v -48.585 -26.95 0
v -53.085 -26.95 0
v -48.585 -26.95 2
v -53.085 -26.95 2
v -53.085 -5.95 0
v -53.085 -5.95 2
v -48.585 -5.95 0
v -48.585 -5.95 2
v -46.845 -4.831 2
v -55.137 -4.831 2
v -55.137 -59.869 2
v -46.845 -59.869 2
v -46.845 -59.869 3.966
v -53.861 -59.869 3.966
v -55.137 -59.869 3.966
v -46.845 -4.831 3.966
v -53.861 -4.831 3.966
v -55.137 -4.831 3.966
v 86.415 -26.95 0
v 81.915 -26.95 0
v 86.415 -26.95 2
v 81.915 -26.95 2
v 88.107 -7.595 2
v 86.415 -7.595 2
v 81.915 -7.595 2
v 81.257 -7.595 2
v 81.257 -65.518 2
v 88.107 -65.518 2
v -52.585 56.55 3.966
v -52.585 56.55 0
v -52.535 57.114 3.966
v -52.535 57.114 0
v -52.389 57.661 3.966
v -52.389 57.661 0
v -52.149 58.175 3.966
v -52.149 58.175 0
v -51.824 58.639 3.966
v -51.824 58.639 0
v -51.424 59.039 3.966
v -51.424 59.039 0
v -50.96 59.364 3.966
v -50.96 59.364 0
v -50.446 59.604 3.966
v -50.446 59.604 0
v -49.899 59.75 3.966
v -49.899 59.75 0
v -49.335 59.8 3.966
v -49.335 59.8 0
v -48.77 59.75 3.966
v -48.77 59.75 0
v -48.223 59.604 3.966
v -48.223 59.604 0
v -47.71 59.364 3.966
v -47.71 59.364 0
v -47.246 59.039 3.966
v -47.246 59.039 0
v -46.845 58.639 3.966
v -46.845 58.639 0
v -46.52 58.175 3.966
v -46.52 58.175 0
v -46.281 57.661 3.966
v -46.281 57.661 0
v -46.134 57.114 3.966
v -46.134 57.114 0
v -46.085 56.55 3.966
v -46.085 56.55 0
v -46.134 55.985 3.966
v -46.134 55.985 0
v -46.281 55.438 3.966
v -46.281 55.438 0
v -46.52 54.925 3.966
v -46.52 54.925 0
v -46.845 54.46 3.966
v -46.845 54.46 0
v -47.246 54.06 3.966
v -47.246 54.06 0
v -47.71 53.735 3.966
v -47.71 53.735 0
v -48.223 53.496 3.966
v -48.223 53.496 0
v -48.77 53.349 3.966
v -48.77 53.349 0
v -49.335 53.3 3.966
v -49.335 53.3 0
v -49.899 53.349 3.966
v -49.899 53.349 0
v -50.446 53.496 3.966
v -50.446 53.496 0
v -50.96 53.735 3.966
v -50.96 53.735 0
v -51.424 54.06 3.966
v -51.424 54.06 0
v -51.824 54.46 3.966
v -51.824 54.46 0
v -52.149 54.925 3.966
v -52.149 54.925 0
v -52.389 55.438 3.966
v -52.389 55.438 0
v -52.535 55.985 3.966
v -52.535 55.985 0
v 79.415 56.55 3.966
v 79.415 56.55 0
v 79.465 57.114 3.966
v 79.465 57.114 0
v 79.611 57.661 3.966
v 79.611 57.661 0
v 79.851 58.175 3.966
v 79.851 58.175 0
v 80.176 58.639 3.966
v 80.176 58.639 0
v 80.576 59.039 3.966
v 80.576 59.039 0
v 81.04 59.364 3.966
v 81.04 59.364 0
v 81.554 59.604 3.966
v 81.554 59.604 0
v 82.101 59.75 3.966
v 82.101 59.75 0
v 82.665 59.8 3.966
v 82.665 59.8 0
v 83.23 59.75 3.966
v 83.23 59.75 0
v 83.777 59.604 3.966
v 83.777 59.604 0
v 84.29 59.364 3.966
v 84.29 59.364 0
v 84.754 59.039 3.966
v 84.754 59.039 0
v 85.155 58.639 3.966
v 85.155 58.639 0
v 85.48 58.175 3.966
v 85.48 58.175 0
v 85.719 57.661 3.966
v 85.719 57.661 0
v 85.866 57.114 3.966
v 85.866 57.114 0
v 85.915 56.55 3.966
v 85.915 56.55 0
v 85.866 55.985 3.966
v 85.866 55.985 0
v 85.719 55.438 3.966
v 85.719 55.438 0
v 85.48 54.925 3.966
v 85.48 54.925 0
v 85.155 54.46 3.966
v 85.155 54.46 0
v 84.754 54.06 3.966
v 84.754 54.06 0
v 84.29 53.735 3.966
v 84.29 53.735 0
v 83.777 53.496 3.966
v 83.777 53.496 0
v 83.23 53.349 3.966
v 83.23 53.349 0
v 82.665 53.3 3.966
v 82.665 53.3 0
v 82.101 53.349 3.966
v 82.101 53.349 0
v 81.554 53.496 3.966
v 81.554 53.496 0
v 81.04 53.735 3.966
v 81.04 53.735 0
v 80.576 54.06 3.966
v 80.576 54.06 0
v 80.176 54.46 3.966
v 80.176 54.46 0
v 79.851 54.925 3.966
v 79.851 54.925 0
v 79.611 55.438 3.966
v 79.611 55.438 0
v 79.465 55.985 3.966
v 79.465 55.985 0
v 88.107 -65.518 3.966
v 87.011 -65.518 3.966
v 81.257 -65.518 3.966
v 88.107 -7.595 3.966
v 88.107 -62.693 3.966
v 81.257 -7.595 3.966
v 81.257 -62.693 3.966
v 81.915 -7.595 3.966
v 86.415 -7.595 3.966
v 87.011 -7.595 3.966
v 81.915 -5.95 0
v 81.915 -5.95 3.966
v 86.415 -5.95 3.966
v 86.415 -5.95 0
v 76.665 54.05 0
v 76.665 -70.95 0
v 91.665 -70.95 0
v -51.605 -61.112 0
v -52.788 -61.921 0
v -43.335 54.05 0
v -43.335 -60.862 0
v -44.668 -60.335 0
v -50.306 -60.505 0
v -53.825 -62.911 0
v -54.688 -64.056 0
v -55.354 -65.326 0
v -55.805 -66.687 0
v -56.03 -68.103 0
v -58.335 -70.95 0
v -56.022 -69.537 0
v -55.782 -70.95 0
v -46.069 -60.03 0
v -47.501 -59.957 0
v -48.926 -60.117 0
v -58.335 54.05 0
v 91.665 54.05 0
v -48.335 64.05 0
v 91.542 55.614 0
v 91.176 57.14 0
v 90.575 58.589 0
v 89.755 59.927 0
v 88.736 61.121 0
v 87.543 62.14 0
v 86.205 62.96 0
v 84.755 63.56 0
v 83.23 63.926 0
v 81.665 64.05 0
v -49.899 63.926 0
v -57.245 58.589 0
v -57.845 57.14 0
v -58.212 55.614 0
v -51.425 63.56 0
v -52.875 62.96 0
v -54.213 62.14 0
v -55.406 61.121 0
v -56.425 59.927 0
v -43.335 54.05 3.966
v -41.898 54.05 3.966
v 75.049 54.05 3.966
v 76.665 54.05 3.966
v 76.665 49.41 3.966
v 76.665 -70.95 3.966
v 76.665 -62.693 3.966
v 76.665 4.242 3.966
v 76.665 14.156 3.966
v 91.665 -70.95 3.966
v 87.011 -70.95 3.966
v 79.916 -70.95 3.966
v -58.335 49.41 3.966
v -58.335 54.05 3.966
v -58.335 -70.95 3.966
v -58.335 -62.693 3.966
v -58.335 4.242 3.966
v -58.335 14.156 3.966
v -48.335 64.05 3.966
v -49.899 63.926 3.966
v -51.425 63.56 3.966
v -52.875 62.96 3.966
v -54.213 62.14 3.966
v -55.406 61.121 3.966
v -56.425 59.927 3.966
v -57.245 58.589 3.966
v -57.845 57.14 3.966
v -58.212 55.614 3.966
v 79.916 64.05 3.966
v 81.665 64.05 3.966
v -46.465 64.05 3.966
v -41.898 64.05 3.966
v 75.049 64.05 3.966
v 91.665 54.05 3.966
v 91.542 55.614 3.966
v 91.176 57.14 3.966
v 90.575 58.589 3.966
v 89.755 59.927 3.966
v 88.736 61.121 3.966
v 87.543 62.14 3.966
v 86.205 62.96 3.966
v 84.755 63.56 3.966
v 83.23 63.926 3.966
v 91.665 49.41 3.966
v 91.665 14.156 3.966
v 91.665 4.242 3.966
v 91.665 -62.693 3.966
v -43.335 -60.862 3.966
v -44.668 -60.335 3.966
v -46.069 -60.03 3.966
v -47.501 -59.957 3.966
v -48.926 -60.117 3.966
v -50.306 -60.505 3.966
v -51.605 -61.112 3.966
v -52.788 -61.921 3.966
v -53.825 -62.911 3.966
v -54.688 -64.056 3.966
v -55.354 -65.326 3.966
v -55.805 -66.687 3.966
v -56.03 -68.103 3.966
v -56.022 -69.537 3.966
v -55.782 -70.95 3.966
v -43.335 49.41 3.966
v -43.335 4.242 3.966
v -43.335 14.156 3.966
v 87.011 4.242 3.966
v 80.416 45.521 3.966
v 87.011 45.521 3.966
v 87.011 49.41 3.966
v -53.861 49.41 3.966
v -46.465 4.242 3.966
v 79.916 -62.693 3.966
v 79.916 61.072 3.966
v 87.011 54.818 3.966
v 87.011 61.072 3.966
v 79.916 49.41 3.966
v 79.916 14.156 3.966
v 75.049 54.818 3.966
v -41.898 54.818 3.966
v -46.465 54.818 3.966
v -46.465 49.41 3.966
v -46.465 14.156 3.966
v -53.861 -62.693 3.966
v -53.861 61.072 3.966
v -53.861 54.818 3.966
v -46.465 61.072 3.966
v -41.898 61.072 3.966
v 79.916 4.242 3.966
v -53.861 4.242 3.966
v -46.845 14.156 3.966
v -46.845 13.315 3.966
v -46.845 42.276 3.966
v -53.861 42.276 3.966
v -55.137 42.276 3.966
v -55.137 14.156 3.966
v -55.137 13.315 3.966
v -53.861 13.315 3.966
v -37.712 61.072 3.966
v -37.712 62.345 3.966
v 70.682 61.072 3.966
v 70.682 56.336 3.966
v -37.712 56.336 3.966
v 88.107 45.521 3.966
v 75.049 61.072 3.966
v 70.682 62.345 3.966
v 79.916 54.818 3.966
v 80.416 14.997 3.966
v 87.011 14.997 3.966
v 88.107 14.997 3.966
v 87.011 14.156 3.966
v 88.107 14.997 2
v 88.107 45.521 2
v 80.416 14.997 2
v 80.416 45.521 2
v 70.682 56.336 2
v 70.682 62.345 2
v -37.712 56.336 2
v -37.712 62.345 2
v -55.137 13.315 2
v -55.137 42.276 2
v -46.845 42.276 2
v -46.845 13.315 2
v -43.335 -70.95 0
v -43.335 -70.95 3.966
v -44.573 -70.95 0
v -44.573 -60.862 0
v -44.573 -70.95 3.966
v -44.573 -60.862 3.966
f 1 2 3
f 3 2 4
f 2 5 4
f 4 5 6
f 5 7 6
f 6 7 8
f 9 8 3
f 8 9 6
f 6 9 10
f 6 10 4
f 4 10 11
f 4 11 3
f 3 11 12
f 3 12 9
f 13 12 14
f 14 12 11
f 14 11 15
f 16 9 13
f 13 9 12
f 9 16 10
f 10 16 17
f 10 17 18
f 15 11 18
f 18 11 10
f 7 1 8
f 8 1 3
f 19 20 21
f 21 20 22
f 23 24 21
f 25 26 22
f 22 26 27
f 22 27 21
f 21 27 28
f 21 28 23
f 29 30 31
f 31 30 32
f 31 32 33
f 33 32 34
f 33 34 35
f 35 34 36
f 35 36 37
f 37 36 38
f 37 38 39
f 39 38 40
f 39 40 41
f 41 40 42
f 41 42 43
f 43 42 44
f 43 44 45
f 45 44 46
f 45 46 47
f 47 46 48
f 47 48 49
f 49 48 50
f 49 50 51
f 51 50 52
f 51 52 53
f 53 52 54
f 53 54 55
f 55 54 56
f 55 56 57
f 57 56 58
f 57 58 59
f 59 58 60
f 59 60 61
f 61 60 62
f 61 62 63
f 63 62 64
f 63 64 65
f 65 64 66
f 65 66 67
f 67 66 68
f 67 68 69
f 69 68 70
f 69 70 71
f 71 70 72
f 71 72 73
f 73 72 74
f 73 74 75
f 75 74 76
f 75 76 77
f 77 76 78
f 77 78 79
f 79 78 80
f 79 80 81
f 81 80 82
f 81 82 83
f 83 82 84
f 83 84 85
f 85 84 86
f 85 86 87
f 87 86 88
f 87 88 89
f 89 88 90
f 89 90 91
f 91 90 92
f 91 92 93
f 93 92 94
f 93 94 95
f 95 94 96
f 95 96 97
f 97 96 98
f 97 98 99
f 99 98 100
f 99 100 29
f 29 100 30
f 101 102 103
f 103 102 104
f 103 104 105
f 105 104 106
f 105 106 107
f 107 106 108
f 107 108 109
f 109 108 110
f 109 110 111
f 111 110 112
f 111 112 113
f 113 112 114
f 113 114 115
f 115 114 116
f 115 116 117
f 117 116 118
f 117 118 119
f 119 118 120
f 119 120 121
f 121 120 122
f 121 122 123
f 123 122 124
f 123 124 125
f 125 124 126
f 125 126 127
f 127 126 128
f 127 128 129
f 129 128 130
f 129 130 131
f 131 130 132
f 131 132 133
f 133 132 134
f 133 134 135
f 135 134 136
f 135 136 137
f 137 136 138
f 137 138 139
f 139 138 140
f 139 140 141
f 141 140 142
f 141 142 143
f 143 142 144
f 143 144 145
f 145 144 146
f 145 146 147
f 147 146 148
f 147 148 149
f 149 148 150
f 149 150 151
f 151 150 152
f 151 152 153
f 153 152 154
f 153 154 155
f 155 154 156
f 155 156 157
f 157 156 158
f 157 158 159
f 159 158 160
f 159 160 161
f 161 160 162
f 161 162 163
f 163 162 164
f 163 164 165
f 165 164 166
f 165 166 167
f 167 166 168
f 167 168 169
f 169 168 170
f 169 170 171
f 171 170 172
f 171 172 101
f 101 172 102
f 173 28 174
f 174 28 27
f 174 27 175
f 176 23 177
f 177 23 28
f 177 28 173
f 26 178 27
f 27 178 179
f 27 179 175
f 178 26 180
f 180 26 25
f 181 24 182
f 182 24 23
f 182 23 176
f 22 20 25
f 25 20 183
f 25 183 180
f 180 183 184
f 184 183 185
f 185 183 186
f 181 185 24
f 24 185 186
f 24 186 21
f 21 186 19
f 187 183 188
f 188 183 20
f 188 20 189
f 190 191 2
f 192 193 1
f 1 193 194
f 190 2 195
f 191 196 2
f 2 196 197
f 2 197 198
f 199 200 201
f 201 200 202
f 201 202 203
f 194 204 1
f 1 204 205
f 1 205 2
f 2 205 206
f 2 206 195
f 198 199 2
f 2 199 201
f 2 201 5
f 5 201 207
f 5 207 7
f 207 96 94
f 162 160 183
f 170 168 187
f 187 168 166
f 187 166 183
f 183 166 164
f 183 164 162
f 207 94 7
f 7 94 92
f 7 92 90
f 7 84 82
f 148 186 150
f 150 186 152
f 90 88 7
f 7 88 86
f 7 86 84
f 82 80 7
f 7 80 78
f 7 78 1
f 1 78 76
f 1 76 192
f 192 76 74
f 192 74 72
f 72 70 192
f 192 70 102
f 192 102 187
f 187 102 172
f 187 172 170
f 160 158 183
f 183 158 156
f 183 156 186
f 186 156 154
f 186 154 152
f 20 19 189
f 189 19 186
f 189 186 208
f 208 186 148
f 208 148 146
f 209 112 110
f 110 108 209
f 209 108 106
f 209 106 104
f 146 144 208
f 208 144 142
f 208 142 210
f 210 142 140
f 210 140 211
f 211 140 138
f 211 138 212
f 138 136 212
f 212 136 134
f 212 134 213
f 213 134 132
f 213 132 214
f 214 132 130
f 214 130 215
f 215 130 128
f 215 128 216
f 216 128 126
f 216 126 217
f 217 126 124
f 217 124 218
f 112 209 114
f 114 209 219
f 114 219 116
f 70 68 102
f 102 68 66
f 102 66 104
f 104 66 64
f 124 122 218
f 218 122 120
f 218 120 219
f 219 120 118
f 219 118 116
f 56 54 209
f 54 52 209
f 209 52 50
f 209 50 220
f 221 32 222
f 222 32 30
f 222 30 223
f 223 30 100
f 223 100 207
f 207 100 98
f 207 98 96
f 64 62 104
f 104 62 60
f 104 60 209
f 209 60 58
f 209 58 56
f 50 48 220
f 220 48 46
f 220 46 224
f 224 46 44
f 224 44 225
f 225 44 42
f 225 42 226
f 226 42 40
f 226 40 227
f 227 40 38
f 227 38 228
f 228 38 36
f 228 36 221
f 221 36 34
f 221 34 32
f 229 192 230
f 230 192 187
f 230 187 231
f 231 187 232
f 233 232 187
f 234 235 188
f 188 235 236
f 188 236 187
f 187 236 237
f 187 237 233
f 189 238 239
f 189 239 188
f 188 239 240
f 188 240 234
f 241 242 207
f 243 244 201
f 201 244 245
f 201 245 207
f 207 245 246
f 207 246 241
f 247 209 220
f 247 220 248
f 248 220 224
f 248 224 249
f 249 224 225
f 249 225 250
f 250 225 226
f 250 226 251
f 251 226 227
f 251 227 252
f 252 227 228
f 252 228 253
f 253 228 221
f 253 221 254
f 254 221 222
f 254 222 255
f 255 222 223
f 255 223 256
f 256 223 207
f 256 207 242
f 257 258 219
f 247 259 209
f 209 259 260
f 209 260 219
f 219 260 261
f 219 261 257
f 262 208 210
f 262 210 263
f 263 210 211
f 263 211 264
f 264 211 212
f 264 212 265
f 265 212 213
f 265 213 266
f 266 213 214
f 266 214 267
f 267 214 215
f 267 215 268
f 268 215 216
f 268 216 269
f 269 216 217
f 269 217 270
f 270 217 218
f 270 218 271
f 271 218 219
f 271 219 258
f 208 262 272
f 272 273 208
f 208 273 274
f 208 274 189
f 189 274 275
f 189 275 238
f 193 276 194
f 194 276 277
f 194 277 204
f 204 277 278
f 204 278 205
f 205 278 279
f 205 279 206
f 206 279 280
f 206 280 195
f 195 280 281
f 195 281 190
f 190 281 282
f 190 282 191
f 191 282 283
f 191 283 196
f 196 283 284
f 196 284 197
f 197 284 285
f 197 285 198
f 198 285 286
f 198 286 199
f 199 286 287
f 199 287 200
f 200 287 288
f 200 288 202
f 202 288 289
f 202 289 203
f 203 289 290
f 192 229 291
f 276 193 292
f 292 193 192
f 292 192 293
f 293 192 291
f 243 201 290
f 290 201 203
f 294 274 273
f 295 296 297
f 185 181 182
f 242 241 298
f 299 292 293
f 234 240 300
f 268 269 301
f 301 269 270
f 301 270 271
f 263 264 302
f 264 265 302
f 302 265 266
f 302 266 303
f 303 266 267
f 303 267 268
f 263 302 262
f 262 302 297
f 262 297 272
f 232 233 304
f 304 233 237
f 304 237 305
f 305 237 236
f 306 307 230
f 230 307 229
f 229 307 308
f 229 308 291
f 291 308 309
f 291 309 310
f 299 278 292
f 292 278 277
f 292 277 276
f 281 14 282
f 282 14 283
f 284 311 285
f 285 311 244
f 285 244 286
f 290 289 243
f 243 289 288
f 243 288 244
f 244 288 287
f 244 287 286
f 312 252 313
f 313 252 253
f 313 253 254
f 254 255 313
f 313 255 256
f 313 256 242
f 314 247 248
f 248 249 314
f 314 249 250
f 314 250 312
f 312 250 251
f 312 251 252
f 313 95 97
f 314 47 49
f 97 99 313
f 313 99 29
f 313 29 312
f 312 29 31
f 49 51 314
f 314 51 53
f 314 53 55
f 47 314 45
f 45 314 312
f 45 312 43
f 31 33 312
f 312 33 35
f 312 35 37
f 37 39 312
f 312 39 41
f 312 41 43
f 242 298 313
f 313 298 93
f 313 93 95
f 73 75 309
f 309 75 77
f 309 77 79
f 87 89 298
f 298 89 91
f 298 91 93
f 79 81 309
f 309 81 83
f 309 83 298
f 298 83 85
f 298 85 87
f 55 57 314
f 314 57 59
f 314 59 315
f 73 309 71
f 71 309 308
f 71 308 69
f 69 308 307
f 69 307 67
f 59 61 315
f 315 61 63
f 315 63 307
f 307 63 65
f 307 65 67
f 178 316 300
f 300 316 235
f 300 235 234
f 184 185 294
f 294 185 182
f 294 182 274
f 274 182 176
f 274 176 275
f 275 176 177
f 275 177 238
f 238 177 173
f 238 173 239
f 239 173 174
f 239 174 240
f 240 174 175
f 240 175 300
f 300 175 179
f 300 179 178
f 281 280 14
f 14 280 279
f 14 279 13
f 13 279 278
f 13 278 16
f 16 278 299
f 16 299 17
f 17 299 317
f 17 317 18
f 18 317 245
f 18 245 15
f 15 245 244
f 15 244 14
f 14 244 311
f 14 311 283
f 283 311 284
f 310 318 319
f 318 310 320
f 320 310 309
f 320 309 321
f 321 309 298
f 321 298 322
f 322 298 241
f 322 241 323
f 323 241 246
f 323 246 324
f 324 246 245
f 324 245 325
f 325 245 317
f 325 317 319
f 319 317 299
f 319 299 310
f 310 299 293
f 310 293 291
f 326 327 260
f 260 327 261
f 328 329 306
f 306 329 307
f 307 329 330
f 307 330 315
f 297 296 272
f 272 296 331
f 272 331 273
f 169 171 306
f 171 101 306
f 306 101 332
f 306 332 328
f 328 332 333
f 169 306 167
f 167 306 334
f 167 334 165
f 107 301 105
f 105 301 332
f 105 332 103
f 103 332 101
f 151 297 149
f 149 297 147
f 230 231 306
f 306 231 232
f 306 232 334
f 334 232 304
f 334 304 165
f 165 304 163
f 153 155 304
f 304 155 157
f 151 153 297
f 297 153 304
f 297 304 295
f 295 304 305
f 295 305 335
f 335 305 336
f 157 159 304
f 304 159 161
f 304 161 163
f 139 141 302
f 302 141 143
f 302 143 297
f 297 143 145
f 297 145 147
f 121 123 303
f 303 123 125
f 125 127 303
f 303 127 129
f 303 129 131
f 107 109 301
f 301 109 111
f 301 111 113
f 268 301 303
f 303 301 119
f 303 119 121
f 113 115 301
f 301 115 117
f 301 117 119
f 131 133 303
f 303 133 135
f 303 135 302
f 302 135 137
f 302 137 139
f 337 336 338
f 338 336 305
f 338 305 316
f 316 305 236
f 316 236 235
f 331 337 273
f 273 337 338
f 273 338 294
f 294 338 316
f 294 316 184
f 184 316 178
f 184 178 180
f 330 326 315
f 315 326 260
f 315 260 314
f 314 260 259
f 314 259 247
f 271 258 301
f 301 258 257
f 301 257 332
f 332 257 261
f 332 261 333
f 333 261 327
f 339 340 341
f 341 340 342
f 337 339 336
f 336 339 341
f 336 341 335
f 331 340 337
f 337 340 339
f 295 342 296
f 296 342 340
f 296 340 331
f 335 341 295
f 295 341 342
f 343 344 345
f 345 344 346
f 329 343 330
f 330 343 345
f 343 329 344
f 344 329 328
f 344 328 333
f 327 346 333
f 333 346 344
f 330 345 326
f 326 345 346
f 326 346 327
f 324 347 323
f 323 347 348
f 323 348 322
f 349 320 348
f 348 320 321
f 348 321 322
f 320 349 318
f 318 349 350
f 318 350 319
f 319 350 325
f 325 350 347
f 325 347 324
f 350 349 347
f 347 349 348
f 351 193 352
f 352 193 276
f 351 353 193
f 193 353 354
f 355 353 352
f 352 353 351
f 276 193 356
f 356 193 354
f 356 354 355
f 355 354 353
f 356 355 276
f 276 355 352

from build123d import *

# Parameters (mm, degrees)
SKETCH2_W           = 120
SKETCH2_H           = 115
BOSS_EXTRUDE1_DEPTH = 152
SKETCH3_W           = 120
SKETCH3_H           = 13.389184999
CUT_EXTRUDE1_DEPTH  = 192.155706765
SKETCH5_R           = 3.25
CUT_EXTRUDE2_DEPTH  = 30
SKETCH6_W           = 4.5
SKETCH6_H           = 21
CUT_EXTRUDE4_DEPTH  = 16
SKETCH7_R           = 3.25
CUT_EXTRUDE5_DEPTH  = 15
SKETCH8_W           = 8.291807731
SKETCH8_H           = 28.961241497
SKETCH8_H_2         = 55.038375958
SKETCH8_W_2         = 108.394356143
SKETCH8_H_3         = 6.008556327
SKETCH8_W_3         = 7.690952099
SKETCH8_H_4         = 30.523466142
SKETCH8_W_4         = 6.849754213
SKETCH8_H_5         = 57.922482994
CUT_EXTRUDE6_DEPTH  = 150
CUT_EXTRUDE7_DEPTH  = 192.155706765
SKETCH10_W          = 148.03445097
SKETCH10_H          = 135
CUT_EXTRUDE8_DEPTH  = 226.028821495


with BuildPart() as part:
    # Sketch2 → Boss-Extrude1 (new body)
    with BuildSketch(Plane.XY):
        with BuildLine():
            Line((-48.334664537, 64.049520767), (81.665335463, 64.049520767))
            ThreePointArc((81.665335463, 64.049520767), (88.736403275, 61.120588579), (91.665335463, 54.049520767))
            Line((91.665335463, 54.049520767), (91.665335463, -70.950479233))
            Line((91.665335463, -70.950479233), (-58.334664537, -70.950479233))
            Line((-58.334664537, -70.950479233), (-58.334664537, 54.049520767))
            ThreePointArc((-58.334664537, 54.049520767), (-55.405732349, 61.120588579), (-48.334664537, 64.049520767))
        make_face()
        with Locations((16.665335463, -3.450479233)):
            Rectangle(SKETCH2_W, SKETCH2_H, mode=Mode.SUBTRACT)
    extrude(amount=BOSS_EXTRUDE1_DEPTH)

    # Sketch3 → Cut-Extrude1 (cut, through all)
    with BuildSketch(Plane.XY.offset(152)):
        with Locations((16.665335463, -67.645071732)):
            Rectangle(SKETCH3_W, SKETCH3_H)
    extrude(amount=-CUT_EXTRUDE1_DEPTH, mode=Mode.SUBTRACT)

    # Sketch5 → Cut-Extrude2 (cut)
    with BuildSketch(Plane(origin=(0, 0, 0), x_dir=(-1, 0, 0), z_dir=(0, 0, -1))):
        with Locations((-82.665335463, 56.549520767)):
            Circle(SKETCH5_R)
        with Locations((49.334664537, 56.549520767)):
            Circle(SKETCH5_R)
    extrude(amount=-CUT_EXTRUDE2_DEPTH, mode=Mode.SUBTRACT)

    # Sketch6 → Cut-Extrude4 (cut)
    with BuildSketch(Plane(origin=(0, 0, 0), x_dir=(-1, 0, 0), z_dir=(0, 0, -1))):
        with Locations((50.834664537, -16.450479233)):
            Rectangle(SKETCH6_W, SKETCH6_H)
        with Locations((-84.165335463, -16.450479233)):
            Rectangle(SKETCH6_W, SKETCH6_H)
    extrude(amount=-CUT_EXTRUDE4_DEPTH, mode=Mode.SUBTRACT)

    # Sketch7 → Cut-Extrude5 (cut)
    with BuildSketch(Plane.XY.offset(152)):
        with Locations((-50.834664537, 55.049520767)):
            Circle(SKETCH7_R)
        with Locations((-50.834664537, 4.049520767)):
            Circle(SKETCH7_R)
        with Locations((84.165335463, 4.049520767)):
            Circle(SKETCH7_R)
        with Locations((84.165335463, 55.049520767)):
            Circle(SKETCH7_R)
    extrude(amount=-CUT_EXTRUDE5_DEPTH, mode=Mode.SUBTRACT)

    # Sketch8 → Cut-Extrude6 (cut)
    with BuildSketch(Plane.XY.offset(152)):
        with Locations((-50.991008781, 27.795371112)):
            Rectangle(SKETCH8_W, SKETCH8_H)
        with Locations((-50.991008781, -32.350277723)):
            Rectangle(SKETCH8_W, SKETCH8_H_2)
        with Locations((16.485078773, 59.340291831)):
            Rectangle(SKETCH8_W_2, SKETCH8_H_3)
        with Locations((84.261594145, 30.258879207)):
            Rectangle(SKETCH8_W_3, SKETCH8_H_4)
        with Locations((84.682193087, -36.556267152)):
            Rectangle(SKETCH8_W_4, SKETCH8_H_5)
    extrude(amount=-CUT_EXTRUDE6_DEPTH, mode=Mode.SUBTRACT)

    # Sketch9 → Cut-Extrude7 (cut, through all)
    with BuildSketch(Plane.XY.offset(152)):
        with BuildLine():
            Line((-55.78242584, -70.950479233), (-44.573216516, -70.950479233))
            Line((-44.573216516, -70.950479233), (-44.573216516, -60.861864812))
            Line((-44.573216516, -60.861864812), (-43.334664537, -60.861864812))
            ThreePointArc((-43.334664537, -60.861864812), (-52.78845028, -61.92097783), (-55.78242584, -70.950479233))
        make_face()
    extrude(amount=-CUT_EXTRUDE7_DEPTH, mode=Mode.SUBTRACT)


with BuildPart() as cut_extrude7_piece_1:
    # of the separate pieces the step leaves, piece 1, a body of its own (cut_extrude7_pieces)
    add(part.part.solids().sort_by_distance((-48.334664537, 64.049520767, 0))[0])


with BuildPart() as cut_extrude7_piece_2:
    # of the separate pieces the step leaves, piece 2, a body of its own (cut_extrude7_pieces)
    add(part.part.solids().sort_by_distance((-43.334664537, -70.950479233, 0))[0])


with BuildPart() as cut_extrude8_tool:
    # Sketch10 → Cut-Extrude8 (new, through all)
    with BuildSketch(Plane(origin=(91.665335463, 0, 0), x_dir=(0, 0, -1), z_dir=(1, 0, 0))):
        with Locations((-77.982774515, -3.450479233)):
            Rectangle(SKETCH10_W, SKETCH10_H)
    extrude(amount=-CUT_EXTRUDE8_DEPTH)


with BuildPart() as cut_extrude7_piece_1_1:
    add(cut_extrude7_piece_1.part)

    # Cut-Extrude8: cut by cut_extrude8_tool
    add(cut_extrude8_tool.part, mode=Mode.SUBTRACT)


with BuildPart() as cut_extrude7_piece_2_1:
    add(cut_extrude7_piece_2.part)

    # Cut-Extrude8: cut by cut_extrude8_tool
    add(cut_extrude8_tool.part, mode=Mode.SUBTRACT)


solid = Compound([cut_extrude7_piece_1_1.part, cut_extrude7_piece_2_1.part])
